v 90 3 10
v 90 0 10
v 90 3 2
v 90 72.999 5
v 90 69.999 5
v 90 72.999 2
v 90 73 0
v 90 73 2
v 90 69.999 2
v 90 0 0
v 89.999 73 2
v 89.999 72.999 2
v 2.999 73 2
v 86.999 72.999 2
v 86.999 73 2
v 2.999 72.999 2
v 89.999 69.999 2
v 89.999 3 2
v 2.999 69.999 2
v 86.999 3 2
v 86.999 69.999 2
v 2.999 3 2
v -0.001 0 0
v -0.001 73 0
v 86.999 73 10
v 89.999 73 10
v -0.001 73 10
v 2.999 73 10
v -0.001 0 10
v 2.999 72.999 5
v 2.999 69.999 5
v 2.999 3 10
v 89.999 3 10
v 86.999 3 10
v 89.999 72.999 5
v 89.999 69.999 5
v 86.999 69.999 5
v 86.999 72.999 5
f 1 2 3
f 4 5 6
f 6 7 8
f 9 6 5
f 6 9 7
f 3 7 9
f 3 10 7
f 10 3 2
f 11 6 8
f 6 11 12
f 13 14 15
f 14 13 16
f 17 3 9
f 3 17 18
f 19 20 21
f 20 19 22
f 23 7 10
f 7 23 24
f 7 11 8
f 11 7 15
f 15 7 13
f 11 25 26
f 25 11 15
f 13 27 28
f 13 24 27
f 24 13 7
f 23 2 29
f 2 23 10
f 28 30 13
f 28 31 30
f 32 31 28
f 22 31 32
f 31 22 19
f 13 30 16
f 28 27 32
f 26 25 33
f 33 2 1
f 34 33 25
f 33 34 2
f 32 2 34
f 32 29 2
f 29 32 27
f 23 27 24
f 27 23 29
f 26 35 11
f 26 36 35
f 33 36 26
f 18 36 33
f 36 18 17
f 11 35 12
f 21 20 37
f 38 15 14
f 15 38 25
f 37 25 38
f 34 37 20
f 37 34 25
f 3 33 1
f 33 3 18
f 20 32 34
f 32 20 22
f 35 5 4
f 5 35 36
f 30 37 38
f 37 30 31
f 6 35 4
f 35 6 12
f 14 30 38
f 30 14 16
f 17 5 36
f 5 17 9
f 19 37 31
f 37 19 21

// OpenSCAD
cube([90,73,2]);
translate([-0.001,0,0])
    cube([3,73,10]);
translate([86.999,0,0])
    cube([3,73,10]);
cube([90,3,10]);
translate([0,69.999,0])
    cube([90,3,5]);
